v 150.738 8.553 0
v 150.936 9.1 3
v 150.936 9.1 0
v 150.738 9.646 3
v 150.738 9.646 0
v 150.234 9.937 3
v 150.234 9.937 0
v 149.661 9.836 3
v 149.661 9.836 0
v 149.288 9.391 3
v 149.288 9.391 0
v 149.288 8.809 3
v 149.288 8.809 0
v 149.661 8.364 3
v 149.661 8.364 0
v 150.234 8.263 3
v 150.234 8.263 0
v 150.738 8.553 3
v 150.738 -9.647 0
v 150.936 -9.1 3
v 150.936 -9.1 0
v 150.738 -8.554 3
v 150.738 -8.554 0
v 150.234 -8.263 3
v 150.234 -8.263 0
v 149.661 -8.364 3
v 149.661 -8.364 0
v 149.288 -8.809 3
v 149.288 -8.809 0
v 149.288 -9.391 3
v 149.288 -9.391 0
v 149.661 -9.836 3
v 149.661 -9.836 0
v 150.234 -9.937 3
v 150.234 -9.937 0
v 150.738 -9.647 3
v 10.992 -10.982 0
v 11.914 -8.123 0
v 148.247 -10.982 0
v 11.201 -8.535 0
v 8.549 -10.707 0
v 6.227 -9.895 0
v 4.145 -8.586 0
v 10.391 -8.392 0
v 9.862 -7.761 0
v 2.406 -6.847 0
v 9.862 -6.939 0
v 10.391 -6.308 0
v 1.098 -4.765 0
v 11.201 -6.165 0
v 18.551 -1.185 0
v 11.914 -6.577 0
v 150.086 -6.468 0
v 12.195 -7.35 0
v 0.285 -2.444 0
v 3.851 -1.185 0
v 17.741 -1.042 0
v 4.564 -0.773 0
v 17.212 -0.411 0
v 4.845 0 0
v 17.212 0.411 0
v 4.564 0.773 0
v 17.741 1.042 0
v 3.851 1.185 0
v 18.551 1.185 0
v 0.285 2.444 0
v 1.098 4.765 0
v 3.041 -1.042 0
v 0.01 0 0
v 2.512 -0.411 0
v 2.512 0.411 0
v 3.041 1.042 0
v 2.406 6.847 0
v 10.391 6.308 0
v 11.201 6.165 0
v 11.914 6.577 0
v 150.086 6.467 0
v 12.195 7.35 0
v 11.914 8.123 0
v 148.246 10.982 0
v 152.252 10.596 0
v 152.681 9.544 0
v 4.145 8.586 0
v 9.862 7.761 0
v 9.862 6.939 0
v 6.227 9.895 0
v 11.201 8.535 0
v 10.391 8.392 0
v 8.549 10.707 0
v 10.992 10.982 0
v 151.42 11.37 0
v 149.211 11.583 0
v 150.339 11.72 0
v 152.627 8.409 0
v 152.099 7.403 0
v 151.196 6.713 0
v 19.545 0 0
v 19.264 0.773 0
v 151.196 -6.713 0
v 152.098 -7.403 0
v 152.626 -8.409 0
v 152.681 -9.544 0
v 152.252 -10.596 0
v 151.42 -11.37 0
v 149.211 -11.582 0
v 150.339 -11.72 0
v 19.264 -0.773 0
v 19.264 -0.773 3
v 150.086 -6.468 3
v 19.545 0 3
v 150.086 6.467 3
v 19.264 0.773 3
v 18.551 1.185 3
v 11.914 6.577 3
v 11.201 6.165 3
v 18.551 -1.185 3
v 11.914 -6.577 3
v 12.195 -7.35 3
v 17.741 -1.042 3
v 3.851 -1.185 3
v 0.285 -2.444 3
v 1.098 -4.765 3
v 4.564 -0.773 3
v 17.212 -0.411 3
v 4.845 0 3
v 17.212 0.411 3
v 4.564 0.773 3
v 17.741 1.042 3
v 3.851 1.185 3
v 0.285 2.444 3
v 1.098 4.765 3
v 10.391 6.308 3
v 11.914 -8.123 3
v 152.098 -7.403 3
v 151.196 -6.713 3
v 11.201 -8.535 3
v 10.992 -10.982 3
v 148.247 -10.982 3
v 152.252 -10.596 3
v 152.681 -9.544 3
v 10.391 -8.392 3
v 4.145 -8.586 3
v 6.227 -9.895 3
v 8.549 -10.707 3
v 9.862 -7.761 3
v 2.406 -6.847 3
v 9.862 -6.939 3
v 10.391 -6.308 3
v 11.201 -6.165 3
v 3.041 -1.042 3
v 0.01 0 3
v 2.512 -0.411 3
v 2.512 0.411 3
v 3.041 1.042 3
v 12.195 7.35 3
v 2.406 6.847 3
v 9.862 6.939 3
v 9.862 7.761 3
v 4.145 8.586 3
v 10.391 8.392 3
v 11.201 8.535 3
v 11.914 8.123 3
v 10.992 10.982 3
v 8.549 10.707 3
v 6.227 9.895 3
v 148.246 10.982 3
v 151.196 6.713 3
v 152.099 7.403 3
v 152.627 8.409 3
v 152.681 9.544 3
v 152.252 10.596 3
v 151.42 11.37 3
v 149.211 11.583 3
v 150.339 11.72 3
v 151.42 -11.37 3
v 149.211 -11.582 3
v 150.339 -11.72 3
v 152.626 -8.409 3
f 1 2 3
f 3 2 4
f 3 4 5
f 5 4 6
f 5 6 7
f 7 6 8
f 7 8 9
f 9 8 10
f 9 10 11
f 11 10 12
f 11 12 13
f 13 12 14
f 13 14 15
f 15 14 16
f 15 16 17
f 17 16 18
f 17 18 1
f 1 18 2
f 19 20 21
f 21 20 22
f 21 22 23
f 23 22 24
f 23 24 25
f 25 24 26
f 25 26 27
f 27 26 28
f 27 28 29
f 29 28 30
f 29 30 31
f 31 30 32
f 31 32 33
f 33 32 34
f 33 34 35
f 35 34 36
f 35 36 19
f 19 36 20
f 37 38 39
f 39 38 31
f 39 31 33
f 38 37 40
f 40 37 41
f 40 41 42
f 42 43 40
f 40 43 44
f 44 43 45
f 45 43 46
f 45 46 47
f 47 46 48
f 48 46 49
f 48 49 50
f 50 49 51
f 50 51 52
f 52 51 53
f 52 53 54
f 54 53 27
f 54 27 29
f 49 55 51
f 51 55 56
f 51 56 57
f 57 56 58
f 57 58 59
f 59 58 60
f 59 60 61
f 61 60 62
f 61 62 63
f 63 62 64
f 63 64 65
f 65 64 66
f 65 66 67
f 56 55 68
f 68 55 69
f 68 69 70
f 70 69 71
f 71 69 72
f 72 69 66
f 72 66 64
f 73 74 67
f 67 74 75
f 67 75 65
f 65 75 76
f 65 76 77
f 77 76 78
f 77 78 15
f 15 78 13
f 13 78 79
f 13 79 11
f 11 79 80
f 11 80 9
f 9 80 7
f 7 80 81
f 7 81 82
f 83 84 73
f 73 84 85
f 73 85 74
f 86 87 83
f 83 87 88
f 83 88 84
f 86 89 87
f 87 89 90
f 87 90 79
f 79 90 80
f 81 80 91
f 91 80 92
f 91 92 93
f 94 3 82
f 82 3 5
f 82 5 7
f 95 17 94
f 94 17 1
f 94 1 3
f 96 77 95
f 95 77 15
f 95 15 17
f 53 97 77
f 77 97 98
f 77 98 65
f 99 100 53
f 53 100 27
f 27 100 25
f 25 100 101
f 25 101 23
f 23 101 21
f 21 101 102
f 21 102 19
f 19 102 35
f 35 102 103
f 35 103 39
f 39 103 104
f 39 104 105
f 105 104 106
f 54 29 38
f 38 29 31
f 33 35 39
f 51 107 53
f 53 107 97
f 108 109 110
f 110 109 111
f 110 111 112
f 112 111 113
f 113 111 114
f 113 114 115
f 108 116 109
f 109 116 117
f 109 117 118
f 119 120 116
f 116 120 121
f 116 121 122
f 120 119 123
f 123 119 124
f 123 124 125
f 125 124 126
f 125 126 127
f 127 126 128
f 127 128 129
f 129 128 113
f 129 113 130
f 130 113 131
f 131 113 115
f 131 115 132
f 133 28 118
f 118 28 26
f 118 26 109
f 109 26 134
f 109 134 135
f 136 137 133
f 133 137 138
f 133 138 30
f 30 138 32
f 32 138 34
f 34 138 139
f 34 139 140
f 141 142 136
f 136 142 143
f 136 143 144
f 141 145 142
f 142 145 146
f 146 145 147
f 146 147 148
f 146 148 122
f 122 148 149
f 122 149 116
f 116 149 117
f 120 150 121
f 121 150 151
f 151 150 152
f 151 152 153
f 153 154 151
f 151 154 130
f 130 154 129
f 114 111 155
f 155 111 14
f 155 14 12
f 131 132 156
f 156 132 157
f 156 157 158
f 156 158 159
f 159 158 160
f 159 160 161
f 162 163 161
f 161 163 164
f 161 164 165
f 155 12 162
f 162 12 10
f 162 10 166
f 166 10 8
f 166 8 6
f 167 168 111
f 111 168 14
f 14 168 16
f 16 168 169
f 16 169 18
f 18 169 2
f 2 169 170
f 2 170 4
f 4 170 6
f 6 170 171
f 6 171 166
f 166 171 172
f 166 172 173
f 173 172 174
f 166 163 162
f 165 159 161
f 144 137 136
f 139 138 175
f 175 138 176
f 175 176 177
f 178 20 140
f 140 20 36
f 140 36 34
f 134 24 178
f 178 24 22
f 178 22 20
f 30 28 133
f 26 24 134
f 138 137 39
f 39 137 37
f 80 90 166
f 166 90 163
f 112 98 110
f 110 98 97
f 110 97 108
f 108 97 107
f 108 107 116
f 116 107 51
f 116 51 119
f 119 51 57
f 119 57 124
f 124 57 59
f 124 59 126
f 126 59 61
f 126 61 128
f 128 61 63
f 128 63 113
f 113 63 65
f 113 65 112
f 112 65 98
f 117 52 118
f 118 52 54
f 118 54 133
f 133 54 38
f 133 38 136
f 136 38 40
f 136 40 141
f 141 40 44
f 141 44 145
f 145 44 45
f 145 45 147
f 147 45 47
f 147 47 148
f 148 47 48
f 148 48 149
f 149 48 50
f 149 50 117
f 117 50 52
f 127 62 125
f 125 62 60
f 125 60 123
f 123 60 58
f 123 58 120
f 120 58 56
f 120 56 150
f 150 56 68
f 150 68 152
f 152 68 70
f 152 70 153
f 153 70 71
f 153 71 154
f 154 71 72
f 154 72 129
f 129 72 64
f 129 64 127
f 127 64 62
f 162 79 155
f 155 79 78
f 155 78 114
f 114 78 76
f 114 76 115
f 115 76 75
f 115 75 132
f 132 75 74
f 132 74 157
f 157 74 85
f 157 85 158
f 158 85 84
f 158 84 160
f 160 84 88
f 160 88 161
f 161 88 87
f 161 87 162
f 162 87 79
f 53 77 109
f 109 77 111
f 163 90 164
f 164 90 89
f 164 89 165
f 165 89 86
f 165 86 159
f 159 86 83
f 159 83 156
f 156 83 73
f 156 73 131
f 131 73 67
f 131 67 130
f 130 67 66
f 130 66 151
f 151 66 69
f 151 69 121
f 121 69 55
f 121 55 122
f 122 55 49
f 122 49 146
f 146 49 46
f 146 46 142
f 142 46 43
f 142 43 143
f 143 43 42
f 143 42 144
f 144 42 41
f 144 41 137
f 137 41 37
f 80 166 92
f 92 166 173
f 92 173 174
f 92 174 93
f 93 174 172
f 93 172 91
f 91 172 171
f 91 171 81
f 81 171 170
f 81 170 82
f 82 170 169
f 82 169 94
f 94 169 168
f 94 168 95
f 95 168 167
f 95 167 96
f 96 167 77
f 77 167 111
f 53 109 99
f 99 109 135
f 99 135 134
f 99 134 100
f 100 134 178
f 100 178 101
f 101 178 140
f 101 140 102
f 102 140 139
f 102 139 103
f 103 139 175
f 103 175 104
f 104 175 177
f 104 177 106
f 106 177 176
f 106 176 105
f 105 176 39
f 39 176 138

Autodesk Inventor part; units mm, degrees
ref_plane "YZ Plane" through (0, 0, 0) normal (1, 0, 0) x (0, 1, 0)
ref_plane "XZ Plane" through (0, 0, 0) normal (0, 1, 0) x (-1, 0, 0)
ref_plane "XY Plane" through (0, 0, 0) normal (0, 0, 1) x (1, 0, 0)
ref_plane "Plano de trabajo1" through (0, 0, 0) normal (0, 0, 1) x (1, 0, 0)
sketch "Boceto1" plane through (0, 0, 0) normal (0, 0, 1) x (1, 0, 0)
  circle A0 centre (10.9923, 0) radius 10.9823 projected
  circle A1 centre (10.9923, 7.35) radius 1.2028 projected
  circle A2 centre (3.6423, 0) radius 1.2028 projected
  circle A3 centre (18.3423, 0) radius 1.2028 projected
  circle A4 centre (18.7153, -9.5116) radius 1.05 projected
  circle A5 centre (10.9923, -7.35) radius 1.2028 projected
  line L0 (10.9923, 0) -> (160.9923, 0)
  line L1 (10.9923, 10.9823) -> (160.9923, 10.9823)
  line L2 (10.9923, -10.9823) -> (160.9923, -10.9823)
  line L3 (160.9923, -10.9823) -> (160.9923, 10.9823)
  point P0 (0, 0)
  dimension "d0" = 150
extrude "Extrusión1" add sketch "Boceto1" along normal blind 3
sketch "Boceto2" plane through (0, 0, 3) normal (0, 0, 1) x (1, 0, 0)
  arc A0 (151.1597, 5.5871) -> (154.1073, 8.4343) centre (150.0864, 9.6477) ccw projected
  circle A1 centre (150.0864, -8.5523) radius 0.85 projected
  circle A2 centre (150.0864, 9.6477) radius 0.85 projected
  line L0 (160.9923, 10.9823) -> (10.9923, 10.9823) projected
  line L1 (10.9923, -10.9823) -> (160.9923, -10.9823) projected
  line L2 (160.9923, -10.9823) -> (160.9923, 10.9823) projected
  line L3 (160.9923, 10.9823) -> (10.9923, 10.9823) projected
  arc A3 (10.9923, 10.9823) -> (10.9923, -10.9823) centre (10.9923, 0) ccw projected
  circle A4 centre (18.7153, -9.5116) radius 1.05 projected
  circle A5 centre (10.9923, 7.35) radius 1.2028 projected
  circle A6 centre (3.6423, 0) radius 1.2028 projected
  circle A7 centre (10.9923, -7.35) radius 1.2028 projected
  circle A8 centre (18.3423, 0) radius 1.2028 projected
  line L4 (150.0864, 10.9823) -> (150.0864, -0.0002)
  line L5 (150.0864, -0.0002) -> (150.0864, -9.1002)
  line L6 (150.0864, -0.0002) -> (150.0864, 9.0998)
  circle A9 centre (150.0864, 9.0998) radius 0.85
  circle A10 centre (150.0864, -9.1002) radius 0.85
  circle A11 centre (150.0864, 9.0998) radius 1.8825
  circle A12 centre (150.0864, -9.1002) radius 1.8821
  point P0 (0, 0)
  point P1 (150.0864, 7.2173)
  point P2 (150.0864, -7.218)
  point P3 (150.0864, -10.9823)
  dimension "d3" = 10.9825
  dimension "d4" = 9.1
  dimension "d5" = 9.1
  dimension "d6" = 1.7
  dimension "d7" = 1.7
extrude "Extrusión2" cut sketch "Boceto2" against normal blind 3 contours A10 A1 | A1 A10 | A9 L4 A2 | A2 L4 A9 | A9 L4 A2 | A2 L4 A9 | L0 L2 L1 A12 L5 L4 A11 picked at (150.2191, 8.6309) picked at (150.5614, 9.2824) picked at (149.6114, 9.2824) picked at (149.9501, 8.6317)
sketch "Boceto3" plane through (0, 0, 3) normal (0, 0, 1) x (1, 0, 0)
  point P0 (0, 0)
sketch "Boceto4" plane through (0, 0, 3) normal (0, 0, 1) x (1, 0, 0)
  circle A0 centre (18.7153, -9.5116) radius 1.05 projected
  point P0 (0, 0)
extrude "Extrusión3" add sketch "Boceto4" against normal blind 3
sketch "Boceto5" plane through (0, 0, 3) normal (0, 0, 1) x (1, 0, 0)
  circle A0 centre (150.0864, 9.0998) radius 0.85 projected
  circle A1 centre (150.0864, -9.1002) radius 0.85 projected
  circle A2 centre (150.0864, 9.0998) radius 2.6325
  circle A3 centre (150.0864, -9.1002) radius 2.632
  line L0 (150.0864, -7.218) -> (150.0864, 7.2173) projected
  circle A4 centre (18.3423, 0) radius 1.2028 projected
  circle A5 centre (10.9923, -7.35) radius 1.2028 projected
  circle A6 centre (3.6423, 0) radius 1.2028 projected
  circle A7 centre (10.9923, 7.35) radius 1.2028 projected
  arc A8 (150.0864, -10.9823) -> (150.0864, -7.218) centre (150.0864, -9.1002) ccw projected
  line L1 (150.0864, -7.218) -> (150.0864, 7.2173) projected
  arc A9 (150.0864, 7.2173) -> (150.0864, 10.9823) centre (150.0864, 9.0998) ccw projected
  line L2 (150.0864, 10.9823) -> (10.9923, 10.9823) projected
  arc A10 (10.9923, 10.9823) -> (10.9923, -10.9823) centre (10.9923, 0) ccw projected
  line L3 (10.9923, -10.9823) -> (150.0864, -10.9823) projected
  circle A11 centre (150.0864, -9.1002) radius 0.85 projected
  circle A12 centre (150.0864, 9.0998) radius 0.85 projected
  point P0 (0, 0)
  point P1 (148.2466, -10.9823)
  point P2 (150.0864, -6.4682)
  point P3 (150.0864, 6.4673)
  point P4 (148.2462, 10.9823)
  dimension "d12" = 5.265
  dimension "d13" = 5.264
extrude "Extrusión4" add sketch "Boceto5" against normal blind 3 contours A2 L0 A9 L2 | A3 L3 A8 L0 picked at (149.0222, 11.1076) picked at (149.0224, -11.1076)
properties part number "tibiaMot"
